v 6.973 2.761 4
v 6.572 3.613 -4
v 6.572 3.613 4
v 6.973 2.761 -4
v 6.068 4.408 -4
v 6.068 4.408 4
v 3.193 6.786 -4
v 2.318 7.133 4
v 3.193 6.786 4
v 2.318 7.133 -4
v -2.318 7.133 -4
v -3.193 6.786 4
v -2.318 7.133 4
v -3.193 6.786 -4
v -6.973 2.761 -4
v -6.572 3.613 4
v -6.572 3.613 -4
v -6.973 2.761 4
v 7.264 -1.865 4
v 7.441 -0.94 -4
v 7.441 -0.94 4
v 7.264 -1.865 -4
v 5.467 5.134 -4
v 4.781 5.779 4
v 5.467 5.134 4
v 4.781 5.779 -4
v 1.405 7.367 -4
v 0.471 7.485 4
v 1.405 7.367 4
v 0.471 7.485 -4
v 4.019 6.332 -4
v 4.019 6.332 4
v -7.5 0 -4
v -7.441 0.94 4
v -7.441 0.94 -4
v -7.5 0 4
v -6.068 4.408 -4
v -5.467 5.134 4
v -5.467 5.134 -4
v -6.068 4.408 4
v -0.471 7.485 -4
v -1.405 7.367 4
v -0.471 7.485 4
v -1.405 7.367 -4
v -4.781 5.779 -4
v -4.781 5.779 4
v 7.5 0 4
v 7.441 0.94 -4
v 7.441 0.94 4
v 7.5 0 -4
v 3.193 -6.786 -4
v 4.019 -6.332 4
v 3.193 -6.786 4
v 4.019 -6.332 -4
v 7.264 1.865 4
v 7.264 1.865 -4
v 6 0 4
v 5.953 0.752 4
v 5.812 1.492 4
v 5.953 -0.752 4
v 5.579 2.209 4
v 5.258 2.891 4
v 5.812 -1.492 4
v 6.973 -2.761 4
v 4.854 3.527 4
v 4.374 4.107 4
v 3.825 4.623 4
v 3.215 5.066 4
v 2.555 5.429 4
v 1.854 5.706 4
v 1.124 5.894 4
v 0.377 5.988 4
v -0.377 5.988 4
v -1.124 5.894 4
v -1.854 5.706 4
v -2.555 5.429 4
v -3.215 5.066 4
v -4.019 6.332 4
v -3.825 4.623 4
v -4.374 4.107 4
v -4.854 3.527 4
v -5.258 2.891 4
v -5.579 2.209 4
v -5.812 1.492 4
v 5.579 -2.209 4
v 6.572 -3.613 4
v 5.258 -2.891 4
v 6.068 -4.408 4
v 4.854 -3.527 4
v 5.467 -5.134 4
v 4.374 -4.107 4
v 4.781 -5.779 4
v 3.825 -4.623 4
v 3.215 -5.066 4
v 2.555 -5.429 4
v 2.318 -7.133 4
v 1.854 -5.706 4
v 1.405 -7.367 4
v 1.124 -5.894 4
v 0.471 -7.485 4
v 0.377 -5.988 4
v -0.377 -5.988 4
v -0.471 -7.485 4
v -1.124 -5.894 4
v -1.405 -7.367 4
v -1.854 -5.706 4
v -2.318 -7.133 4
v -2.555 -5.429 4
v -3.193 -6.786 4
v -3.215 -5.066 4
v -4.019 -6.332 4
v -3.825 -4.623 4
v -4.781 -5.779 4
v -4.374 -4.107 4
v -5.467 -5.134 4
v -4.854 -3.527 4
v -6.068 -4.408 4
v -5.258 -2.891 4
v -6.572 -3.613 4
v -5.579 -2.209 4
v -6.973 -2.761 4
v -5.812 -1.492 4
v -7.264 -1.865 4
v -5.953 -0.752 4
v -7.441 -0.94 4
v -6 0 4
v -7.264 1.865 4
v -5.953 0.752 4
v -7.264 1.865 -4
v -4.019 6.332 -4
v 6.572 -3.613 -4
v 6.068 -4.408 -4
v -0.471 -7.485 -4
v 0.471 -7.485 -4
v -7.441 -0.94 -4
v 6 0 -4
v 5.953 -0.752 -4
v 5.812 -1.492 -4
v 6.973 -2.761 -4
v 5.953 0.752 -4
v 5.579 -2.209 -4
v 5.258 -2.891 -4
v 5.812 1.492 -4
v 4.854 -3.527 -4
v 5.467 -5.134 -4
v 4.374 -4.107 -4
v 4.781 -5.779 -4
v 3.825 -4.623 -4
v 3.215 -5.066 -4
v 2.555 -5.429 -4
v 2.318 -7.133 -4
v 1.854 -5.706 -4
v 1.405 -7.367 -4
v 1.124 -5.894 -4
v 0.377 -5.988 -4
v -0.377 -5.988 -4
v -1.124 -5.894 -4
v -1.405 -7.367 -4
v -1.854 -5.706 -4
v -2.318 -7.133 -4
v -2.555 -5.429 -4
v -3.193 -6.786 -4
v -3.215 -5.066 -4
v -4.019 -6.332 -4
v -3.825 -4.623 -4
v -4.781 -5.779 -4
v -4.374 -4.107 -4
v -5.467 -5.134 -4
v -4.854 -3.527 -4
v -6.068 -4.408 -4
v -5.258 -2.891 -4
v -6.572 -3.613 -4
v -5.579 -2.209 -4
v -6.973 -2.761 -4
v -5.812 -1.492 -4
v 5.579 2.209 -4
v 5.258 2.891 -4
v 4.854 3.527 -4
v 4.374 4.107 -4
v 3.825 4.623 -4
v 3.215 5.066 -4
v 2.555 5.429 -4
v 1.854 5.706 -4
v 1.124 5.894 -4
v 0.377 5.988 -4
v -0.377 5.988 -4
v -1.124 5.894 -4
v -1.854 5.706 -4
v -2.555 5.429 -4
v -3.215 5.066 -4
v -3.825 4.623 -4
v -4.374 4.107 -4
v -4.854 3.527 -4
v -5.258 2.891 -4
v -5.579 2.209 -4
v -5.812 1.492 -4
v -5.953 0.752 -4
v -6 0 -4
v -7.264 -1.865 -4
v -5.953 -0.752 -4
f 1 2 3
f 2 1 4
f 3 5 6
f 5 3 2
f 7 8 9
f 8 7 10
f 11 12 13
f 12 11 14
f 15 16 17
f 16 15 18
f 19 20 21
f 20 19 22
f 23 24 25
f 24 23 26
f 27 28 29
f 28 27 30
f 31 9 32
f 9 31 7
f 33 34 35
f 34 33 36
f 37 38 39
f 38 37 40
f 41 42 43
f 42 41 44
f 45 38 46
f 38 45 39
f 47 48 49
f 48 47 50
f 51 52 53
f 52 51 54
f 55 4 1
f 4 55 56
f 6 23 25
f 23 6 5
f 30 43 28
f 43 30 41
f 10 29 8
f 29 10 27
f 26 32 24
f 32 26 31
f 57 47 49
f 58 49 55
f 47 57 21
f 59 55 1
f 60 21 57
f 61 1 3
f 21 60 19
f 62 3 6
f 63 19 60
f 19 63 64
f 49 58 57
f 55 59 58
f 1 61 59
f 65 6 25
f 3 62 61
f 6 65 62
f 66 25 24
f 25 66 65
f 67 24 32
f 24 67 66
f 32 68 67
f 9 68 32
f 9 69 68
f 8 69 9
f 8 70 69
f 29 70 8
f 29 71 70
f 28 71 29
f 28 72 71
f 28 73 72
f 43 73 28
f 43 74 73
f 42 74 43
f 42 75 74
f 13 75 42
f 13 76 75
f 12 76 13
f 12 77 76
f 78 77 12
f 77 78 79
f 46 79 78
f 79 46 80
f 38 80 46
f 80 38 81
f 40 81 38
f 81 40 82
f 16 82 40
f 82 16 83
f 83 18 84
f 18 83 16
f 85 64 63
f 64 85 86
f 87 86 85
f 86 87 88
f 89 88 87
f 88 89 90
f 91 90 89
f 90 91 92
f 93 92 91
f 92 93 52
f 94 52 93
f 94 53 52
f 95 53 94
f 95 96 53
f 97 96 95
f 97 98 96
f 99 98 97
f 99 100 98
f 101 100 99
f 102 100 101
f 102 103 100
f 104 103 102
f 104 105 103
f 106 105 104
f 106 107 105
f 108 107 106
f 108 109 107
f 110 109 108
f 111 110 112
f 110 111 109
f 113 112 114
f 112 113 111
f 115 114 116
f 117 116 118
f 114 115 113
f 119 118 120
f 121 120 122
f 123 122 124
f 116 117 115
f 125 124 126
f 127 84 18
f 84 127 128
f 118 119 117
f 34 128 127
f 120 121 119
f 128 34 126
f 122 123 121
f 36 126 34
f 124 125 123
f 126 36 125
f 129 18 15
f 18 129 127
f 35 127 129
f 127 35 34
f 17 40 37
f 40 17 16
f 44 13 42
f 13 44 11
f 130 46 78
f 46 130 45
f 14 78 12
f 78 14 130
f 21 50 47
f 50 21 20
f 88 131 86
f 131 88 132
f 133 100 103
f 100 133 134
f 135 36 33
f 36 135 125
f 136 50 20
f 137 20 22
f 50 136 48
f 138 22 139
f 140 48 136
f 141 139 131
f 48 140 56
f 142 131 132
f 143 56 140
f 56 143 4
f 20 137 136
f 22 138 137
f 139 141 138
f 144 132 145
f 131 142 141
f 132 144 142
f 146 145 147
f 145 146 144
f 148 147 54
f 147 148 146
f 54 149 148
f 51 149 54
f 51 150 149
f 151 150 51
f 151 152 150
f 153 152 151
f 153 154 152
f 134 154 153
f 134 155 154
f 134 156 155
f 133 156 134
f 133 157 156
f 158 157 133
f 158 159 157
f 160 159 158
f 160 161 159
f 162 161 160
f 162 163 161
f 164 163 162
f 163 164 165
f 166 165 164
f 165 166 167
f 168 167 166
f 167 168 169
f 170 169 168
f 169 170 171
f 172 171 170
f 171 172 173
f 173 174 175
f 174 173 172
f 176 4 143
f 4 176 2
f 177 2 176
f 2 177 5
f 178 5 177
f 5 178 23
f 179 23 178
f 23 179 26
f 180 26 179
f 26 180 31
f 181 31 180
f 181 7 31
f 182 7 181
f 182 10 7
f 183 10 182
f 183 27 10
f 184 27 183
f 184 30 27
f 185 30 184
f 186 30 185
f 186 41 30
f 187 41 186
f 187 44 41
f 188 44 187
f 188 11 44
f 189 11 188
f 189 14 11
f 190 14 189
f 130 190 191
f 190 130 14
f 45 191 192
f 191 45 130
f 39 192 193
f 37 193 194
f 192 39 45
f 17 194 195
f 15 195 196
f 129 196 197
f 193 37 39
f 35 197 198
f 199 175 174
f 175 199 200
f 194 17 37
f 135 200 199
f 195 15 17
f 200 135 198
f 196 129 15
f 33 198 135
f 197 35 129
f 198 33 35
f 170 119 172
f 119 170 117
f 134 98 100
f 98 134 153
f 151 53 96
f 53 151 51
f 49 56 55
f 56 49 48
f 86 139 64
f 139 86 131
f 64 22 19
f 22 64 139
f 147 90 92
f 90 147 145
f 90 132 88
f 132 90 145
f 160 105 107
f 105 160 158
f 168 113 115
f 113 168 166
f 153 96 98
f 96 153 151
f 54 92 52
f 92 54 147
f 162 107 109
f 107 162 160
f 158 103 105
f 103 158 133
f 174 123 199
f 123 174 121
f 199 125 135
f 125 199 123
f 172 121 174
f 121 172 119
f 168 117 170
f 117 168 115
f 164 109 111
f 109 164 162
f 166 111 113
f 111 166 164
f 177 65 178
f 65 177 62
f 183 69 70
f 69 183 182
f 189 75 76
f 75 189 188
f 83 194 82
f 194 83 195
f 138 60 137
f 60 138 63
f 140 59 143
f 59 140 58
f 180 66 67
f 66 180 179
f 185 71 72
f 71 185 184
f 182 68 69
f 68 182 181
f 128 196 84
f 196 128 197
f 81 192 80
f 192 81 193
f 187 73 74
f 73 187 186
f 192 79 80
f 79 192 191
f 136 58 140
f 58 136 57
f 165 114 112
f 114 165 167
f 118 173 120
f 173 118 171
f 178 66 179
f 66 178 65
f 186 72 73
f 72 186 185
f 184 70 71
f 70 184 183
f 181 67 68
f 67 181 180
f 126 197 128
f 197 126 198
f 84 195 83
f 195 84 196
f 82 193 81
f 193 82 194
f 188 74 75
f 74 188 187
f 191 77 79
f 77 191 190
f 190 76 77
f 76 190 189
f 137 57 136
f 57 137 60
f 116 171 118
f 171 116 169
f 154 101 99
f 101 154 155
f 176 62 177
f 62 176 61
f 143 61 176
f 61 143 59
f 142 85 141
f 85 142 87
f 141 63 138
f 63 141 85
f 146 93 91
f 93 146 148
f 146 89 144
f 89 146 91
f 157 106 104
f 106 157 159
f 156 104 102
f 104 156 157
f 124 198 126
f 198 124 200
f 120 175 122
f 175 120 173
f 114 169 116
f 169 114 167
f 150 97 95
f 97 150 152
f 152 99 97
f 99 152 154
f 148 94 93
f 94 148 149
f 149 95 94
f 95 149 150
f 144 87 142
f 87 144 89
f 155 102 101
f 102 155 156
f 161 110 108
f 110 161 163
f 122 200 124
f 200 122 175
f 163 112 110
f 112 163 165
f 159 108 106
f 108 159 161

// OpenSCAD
$fn = 50;


difference() {
	union() {
		translate(v = [0, 0, -4.0000000000]) {
			cylinder(h = 8, r = 7.5000000000);
		}
	}
	union() {
		translate(v = [0, 0, -100.0000000000]) {
			cylinder(h = 200, r = 6);
		}
	}
}
